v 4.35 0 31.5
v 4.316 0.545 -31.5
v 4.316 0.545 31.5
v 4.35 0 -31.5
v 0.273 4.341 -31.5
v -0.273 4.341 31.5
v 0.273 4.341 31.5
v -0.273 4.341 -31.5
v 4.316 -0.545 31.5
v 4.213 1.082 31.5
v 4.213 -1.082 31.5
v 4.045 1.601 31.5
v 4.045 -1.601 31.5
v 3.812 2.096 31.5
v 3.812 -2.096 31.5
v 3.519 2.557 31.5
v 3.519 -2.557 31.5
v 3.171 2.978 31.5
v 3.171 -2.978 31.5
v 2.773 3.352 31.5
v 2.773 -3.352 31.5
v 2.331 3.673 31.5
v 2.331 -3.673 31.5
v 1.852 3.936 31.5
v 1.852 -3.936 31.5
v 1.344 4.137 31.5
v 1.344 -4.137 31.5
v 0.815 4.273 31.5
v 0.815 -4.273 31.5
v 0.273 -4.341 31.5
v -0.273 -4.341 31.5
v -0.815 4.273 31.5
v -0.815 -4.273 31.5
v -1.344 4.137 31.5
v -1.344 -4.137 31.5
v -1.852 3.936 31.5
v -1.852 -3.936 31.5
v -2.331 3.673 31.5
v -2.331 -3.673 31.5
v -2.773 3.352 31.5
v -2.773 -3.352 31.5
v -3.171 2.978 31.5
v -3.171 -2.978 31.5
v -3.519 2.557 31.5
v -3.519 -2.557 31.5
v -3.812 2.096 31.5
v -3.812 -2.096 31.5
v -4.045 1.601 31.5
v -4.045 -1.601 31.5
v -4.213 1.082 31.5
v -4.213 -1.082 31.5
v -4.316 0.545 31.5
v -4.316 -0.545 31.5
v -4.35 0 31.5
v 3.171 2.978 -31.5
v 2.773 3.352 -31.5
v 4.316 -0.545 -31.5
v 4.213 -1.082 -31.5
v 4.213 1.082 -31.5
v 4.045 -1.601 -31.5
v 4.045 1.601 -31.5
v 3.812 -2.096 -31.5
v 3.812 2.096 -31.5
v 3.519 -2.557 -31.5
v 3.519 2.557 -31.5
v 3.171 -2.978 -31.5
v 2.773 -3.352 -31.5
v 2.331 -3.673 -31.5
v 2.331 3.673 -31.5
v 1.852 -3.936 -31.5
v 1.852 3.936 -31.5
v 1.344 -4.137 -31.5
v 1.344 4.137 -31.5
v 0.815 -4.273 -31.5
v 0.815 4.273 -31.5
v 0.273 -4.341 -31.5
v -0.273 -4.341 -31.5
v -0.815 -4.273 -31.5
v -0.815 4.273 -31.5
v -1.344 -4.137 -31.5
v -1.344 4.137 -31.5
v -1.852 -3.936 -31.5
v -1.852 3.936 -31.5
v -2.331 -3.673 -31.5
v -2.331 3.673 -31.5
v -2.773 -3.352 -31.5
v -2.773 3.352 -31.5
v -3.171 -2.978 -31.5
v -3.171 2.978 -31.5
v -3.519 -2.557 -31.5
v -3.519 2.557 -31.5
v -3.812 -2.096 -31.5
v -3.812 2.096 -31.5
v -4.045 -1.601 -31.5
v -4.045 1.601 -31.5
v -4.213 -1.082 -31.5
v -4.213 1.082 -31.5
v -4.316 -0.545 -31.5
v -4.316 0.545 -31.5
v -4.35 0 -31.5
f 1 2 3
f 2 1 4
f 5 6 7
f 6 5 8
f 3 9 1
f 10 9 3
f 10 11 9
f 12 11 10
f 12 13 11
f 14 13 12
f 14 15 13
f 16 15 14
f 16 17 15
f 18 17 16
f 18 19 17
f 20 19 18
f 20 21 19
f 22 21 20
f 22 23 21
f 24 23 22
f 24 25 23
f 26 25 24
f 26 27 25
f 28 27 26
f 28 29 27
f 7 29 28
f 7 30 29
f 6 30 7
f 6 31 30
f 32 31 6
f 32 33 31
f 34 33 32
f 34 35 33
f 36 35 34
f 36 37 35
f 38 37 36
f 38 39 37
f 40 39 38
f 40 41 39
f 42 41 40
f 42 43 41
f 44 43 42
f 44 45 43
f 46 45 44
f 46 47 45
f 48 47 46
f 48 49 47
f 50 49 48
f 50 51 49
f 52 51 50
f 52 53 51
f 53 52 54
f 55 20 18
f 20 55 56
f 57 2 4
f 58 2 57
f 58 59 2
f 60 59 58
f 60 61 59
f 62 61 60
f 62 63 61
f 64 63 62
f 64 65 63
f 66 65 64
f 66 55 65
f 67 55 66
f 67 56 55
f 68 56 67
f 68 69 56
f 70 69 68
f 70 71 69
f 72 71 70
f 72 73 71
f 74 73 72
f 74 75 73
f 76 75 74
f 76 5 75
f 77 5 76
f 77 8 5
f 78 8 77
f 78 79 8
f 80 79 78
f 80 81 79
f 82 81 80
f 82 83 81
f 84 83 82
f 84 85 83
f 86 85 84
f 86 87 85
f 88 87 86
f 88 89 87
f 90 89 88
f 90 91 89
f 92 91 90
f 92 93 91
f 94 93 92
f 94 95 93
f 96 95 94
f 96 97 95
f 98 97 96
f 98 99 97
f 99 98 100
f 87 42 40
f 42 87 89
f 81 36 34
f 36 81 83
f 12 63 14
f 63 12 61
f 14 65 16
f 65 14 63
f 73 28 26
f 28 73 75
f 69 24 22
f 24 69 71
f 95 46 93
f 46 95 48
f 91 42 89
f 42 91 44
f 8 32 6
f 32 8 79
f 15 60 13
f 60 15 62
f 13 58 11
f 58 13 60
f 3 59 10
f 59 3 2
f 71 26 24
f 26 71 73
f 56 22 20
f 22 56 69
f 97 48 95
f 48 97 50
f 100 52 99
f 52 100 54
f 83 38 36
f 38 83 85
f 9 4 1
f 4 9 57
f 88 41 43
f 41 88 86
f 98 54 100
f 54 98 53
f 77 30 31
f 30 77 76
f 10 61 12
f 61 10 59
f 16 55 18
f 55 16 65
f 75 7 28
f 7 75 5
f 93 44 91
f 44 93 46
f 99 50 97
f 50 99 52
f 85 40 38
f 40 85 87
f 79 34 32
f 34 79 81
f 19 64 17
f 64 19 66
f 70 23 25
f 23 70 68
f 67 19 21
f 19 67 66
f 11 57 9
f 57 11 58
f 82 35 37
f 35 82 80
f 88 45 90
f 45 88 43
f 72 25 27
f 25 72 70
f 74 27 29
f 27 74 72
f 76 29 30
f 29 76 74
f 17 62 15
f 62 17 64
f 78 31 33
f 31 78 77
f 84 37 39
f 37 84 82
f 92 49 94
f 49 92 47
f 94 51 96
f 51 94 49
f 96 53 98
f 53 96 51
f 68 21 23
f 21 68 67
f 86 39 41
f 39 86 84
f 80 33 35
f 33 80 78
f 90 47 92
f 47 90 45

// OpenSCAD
$fn = 50;


difference() {
	union() {
		translate(v = [0, 0, -31.5000000000]) {
			cylinder(h = 63, r = 4.3500000000);
		}
	}
	union() {
		translate(v = [0, 0, -100.0000000000]) {
			cylinder(h = 200, r = 0);
		}
	}
}
